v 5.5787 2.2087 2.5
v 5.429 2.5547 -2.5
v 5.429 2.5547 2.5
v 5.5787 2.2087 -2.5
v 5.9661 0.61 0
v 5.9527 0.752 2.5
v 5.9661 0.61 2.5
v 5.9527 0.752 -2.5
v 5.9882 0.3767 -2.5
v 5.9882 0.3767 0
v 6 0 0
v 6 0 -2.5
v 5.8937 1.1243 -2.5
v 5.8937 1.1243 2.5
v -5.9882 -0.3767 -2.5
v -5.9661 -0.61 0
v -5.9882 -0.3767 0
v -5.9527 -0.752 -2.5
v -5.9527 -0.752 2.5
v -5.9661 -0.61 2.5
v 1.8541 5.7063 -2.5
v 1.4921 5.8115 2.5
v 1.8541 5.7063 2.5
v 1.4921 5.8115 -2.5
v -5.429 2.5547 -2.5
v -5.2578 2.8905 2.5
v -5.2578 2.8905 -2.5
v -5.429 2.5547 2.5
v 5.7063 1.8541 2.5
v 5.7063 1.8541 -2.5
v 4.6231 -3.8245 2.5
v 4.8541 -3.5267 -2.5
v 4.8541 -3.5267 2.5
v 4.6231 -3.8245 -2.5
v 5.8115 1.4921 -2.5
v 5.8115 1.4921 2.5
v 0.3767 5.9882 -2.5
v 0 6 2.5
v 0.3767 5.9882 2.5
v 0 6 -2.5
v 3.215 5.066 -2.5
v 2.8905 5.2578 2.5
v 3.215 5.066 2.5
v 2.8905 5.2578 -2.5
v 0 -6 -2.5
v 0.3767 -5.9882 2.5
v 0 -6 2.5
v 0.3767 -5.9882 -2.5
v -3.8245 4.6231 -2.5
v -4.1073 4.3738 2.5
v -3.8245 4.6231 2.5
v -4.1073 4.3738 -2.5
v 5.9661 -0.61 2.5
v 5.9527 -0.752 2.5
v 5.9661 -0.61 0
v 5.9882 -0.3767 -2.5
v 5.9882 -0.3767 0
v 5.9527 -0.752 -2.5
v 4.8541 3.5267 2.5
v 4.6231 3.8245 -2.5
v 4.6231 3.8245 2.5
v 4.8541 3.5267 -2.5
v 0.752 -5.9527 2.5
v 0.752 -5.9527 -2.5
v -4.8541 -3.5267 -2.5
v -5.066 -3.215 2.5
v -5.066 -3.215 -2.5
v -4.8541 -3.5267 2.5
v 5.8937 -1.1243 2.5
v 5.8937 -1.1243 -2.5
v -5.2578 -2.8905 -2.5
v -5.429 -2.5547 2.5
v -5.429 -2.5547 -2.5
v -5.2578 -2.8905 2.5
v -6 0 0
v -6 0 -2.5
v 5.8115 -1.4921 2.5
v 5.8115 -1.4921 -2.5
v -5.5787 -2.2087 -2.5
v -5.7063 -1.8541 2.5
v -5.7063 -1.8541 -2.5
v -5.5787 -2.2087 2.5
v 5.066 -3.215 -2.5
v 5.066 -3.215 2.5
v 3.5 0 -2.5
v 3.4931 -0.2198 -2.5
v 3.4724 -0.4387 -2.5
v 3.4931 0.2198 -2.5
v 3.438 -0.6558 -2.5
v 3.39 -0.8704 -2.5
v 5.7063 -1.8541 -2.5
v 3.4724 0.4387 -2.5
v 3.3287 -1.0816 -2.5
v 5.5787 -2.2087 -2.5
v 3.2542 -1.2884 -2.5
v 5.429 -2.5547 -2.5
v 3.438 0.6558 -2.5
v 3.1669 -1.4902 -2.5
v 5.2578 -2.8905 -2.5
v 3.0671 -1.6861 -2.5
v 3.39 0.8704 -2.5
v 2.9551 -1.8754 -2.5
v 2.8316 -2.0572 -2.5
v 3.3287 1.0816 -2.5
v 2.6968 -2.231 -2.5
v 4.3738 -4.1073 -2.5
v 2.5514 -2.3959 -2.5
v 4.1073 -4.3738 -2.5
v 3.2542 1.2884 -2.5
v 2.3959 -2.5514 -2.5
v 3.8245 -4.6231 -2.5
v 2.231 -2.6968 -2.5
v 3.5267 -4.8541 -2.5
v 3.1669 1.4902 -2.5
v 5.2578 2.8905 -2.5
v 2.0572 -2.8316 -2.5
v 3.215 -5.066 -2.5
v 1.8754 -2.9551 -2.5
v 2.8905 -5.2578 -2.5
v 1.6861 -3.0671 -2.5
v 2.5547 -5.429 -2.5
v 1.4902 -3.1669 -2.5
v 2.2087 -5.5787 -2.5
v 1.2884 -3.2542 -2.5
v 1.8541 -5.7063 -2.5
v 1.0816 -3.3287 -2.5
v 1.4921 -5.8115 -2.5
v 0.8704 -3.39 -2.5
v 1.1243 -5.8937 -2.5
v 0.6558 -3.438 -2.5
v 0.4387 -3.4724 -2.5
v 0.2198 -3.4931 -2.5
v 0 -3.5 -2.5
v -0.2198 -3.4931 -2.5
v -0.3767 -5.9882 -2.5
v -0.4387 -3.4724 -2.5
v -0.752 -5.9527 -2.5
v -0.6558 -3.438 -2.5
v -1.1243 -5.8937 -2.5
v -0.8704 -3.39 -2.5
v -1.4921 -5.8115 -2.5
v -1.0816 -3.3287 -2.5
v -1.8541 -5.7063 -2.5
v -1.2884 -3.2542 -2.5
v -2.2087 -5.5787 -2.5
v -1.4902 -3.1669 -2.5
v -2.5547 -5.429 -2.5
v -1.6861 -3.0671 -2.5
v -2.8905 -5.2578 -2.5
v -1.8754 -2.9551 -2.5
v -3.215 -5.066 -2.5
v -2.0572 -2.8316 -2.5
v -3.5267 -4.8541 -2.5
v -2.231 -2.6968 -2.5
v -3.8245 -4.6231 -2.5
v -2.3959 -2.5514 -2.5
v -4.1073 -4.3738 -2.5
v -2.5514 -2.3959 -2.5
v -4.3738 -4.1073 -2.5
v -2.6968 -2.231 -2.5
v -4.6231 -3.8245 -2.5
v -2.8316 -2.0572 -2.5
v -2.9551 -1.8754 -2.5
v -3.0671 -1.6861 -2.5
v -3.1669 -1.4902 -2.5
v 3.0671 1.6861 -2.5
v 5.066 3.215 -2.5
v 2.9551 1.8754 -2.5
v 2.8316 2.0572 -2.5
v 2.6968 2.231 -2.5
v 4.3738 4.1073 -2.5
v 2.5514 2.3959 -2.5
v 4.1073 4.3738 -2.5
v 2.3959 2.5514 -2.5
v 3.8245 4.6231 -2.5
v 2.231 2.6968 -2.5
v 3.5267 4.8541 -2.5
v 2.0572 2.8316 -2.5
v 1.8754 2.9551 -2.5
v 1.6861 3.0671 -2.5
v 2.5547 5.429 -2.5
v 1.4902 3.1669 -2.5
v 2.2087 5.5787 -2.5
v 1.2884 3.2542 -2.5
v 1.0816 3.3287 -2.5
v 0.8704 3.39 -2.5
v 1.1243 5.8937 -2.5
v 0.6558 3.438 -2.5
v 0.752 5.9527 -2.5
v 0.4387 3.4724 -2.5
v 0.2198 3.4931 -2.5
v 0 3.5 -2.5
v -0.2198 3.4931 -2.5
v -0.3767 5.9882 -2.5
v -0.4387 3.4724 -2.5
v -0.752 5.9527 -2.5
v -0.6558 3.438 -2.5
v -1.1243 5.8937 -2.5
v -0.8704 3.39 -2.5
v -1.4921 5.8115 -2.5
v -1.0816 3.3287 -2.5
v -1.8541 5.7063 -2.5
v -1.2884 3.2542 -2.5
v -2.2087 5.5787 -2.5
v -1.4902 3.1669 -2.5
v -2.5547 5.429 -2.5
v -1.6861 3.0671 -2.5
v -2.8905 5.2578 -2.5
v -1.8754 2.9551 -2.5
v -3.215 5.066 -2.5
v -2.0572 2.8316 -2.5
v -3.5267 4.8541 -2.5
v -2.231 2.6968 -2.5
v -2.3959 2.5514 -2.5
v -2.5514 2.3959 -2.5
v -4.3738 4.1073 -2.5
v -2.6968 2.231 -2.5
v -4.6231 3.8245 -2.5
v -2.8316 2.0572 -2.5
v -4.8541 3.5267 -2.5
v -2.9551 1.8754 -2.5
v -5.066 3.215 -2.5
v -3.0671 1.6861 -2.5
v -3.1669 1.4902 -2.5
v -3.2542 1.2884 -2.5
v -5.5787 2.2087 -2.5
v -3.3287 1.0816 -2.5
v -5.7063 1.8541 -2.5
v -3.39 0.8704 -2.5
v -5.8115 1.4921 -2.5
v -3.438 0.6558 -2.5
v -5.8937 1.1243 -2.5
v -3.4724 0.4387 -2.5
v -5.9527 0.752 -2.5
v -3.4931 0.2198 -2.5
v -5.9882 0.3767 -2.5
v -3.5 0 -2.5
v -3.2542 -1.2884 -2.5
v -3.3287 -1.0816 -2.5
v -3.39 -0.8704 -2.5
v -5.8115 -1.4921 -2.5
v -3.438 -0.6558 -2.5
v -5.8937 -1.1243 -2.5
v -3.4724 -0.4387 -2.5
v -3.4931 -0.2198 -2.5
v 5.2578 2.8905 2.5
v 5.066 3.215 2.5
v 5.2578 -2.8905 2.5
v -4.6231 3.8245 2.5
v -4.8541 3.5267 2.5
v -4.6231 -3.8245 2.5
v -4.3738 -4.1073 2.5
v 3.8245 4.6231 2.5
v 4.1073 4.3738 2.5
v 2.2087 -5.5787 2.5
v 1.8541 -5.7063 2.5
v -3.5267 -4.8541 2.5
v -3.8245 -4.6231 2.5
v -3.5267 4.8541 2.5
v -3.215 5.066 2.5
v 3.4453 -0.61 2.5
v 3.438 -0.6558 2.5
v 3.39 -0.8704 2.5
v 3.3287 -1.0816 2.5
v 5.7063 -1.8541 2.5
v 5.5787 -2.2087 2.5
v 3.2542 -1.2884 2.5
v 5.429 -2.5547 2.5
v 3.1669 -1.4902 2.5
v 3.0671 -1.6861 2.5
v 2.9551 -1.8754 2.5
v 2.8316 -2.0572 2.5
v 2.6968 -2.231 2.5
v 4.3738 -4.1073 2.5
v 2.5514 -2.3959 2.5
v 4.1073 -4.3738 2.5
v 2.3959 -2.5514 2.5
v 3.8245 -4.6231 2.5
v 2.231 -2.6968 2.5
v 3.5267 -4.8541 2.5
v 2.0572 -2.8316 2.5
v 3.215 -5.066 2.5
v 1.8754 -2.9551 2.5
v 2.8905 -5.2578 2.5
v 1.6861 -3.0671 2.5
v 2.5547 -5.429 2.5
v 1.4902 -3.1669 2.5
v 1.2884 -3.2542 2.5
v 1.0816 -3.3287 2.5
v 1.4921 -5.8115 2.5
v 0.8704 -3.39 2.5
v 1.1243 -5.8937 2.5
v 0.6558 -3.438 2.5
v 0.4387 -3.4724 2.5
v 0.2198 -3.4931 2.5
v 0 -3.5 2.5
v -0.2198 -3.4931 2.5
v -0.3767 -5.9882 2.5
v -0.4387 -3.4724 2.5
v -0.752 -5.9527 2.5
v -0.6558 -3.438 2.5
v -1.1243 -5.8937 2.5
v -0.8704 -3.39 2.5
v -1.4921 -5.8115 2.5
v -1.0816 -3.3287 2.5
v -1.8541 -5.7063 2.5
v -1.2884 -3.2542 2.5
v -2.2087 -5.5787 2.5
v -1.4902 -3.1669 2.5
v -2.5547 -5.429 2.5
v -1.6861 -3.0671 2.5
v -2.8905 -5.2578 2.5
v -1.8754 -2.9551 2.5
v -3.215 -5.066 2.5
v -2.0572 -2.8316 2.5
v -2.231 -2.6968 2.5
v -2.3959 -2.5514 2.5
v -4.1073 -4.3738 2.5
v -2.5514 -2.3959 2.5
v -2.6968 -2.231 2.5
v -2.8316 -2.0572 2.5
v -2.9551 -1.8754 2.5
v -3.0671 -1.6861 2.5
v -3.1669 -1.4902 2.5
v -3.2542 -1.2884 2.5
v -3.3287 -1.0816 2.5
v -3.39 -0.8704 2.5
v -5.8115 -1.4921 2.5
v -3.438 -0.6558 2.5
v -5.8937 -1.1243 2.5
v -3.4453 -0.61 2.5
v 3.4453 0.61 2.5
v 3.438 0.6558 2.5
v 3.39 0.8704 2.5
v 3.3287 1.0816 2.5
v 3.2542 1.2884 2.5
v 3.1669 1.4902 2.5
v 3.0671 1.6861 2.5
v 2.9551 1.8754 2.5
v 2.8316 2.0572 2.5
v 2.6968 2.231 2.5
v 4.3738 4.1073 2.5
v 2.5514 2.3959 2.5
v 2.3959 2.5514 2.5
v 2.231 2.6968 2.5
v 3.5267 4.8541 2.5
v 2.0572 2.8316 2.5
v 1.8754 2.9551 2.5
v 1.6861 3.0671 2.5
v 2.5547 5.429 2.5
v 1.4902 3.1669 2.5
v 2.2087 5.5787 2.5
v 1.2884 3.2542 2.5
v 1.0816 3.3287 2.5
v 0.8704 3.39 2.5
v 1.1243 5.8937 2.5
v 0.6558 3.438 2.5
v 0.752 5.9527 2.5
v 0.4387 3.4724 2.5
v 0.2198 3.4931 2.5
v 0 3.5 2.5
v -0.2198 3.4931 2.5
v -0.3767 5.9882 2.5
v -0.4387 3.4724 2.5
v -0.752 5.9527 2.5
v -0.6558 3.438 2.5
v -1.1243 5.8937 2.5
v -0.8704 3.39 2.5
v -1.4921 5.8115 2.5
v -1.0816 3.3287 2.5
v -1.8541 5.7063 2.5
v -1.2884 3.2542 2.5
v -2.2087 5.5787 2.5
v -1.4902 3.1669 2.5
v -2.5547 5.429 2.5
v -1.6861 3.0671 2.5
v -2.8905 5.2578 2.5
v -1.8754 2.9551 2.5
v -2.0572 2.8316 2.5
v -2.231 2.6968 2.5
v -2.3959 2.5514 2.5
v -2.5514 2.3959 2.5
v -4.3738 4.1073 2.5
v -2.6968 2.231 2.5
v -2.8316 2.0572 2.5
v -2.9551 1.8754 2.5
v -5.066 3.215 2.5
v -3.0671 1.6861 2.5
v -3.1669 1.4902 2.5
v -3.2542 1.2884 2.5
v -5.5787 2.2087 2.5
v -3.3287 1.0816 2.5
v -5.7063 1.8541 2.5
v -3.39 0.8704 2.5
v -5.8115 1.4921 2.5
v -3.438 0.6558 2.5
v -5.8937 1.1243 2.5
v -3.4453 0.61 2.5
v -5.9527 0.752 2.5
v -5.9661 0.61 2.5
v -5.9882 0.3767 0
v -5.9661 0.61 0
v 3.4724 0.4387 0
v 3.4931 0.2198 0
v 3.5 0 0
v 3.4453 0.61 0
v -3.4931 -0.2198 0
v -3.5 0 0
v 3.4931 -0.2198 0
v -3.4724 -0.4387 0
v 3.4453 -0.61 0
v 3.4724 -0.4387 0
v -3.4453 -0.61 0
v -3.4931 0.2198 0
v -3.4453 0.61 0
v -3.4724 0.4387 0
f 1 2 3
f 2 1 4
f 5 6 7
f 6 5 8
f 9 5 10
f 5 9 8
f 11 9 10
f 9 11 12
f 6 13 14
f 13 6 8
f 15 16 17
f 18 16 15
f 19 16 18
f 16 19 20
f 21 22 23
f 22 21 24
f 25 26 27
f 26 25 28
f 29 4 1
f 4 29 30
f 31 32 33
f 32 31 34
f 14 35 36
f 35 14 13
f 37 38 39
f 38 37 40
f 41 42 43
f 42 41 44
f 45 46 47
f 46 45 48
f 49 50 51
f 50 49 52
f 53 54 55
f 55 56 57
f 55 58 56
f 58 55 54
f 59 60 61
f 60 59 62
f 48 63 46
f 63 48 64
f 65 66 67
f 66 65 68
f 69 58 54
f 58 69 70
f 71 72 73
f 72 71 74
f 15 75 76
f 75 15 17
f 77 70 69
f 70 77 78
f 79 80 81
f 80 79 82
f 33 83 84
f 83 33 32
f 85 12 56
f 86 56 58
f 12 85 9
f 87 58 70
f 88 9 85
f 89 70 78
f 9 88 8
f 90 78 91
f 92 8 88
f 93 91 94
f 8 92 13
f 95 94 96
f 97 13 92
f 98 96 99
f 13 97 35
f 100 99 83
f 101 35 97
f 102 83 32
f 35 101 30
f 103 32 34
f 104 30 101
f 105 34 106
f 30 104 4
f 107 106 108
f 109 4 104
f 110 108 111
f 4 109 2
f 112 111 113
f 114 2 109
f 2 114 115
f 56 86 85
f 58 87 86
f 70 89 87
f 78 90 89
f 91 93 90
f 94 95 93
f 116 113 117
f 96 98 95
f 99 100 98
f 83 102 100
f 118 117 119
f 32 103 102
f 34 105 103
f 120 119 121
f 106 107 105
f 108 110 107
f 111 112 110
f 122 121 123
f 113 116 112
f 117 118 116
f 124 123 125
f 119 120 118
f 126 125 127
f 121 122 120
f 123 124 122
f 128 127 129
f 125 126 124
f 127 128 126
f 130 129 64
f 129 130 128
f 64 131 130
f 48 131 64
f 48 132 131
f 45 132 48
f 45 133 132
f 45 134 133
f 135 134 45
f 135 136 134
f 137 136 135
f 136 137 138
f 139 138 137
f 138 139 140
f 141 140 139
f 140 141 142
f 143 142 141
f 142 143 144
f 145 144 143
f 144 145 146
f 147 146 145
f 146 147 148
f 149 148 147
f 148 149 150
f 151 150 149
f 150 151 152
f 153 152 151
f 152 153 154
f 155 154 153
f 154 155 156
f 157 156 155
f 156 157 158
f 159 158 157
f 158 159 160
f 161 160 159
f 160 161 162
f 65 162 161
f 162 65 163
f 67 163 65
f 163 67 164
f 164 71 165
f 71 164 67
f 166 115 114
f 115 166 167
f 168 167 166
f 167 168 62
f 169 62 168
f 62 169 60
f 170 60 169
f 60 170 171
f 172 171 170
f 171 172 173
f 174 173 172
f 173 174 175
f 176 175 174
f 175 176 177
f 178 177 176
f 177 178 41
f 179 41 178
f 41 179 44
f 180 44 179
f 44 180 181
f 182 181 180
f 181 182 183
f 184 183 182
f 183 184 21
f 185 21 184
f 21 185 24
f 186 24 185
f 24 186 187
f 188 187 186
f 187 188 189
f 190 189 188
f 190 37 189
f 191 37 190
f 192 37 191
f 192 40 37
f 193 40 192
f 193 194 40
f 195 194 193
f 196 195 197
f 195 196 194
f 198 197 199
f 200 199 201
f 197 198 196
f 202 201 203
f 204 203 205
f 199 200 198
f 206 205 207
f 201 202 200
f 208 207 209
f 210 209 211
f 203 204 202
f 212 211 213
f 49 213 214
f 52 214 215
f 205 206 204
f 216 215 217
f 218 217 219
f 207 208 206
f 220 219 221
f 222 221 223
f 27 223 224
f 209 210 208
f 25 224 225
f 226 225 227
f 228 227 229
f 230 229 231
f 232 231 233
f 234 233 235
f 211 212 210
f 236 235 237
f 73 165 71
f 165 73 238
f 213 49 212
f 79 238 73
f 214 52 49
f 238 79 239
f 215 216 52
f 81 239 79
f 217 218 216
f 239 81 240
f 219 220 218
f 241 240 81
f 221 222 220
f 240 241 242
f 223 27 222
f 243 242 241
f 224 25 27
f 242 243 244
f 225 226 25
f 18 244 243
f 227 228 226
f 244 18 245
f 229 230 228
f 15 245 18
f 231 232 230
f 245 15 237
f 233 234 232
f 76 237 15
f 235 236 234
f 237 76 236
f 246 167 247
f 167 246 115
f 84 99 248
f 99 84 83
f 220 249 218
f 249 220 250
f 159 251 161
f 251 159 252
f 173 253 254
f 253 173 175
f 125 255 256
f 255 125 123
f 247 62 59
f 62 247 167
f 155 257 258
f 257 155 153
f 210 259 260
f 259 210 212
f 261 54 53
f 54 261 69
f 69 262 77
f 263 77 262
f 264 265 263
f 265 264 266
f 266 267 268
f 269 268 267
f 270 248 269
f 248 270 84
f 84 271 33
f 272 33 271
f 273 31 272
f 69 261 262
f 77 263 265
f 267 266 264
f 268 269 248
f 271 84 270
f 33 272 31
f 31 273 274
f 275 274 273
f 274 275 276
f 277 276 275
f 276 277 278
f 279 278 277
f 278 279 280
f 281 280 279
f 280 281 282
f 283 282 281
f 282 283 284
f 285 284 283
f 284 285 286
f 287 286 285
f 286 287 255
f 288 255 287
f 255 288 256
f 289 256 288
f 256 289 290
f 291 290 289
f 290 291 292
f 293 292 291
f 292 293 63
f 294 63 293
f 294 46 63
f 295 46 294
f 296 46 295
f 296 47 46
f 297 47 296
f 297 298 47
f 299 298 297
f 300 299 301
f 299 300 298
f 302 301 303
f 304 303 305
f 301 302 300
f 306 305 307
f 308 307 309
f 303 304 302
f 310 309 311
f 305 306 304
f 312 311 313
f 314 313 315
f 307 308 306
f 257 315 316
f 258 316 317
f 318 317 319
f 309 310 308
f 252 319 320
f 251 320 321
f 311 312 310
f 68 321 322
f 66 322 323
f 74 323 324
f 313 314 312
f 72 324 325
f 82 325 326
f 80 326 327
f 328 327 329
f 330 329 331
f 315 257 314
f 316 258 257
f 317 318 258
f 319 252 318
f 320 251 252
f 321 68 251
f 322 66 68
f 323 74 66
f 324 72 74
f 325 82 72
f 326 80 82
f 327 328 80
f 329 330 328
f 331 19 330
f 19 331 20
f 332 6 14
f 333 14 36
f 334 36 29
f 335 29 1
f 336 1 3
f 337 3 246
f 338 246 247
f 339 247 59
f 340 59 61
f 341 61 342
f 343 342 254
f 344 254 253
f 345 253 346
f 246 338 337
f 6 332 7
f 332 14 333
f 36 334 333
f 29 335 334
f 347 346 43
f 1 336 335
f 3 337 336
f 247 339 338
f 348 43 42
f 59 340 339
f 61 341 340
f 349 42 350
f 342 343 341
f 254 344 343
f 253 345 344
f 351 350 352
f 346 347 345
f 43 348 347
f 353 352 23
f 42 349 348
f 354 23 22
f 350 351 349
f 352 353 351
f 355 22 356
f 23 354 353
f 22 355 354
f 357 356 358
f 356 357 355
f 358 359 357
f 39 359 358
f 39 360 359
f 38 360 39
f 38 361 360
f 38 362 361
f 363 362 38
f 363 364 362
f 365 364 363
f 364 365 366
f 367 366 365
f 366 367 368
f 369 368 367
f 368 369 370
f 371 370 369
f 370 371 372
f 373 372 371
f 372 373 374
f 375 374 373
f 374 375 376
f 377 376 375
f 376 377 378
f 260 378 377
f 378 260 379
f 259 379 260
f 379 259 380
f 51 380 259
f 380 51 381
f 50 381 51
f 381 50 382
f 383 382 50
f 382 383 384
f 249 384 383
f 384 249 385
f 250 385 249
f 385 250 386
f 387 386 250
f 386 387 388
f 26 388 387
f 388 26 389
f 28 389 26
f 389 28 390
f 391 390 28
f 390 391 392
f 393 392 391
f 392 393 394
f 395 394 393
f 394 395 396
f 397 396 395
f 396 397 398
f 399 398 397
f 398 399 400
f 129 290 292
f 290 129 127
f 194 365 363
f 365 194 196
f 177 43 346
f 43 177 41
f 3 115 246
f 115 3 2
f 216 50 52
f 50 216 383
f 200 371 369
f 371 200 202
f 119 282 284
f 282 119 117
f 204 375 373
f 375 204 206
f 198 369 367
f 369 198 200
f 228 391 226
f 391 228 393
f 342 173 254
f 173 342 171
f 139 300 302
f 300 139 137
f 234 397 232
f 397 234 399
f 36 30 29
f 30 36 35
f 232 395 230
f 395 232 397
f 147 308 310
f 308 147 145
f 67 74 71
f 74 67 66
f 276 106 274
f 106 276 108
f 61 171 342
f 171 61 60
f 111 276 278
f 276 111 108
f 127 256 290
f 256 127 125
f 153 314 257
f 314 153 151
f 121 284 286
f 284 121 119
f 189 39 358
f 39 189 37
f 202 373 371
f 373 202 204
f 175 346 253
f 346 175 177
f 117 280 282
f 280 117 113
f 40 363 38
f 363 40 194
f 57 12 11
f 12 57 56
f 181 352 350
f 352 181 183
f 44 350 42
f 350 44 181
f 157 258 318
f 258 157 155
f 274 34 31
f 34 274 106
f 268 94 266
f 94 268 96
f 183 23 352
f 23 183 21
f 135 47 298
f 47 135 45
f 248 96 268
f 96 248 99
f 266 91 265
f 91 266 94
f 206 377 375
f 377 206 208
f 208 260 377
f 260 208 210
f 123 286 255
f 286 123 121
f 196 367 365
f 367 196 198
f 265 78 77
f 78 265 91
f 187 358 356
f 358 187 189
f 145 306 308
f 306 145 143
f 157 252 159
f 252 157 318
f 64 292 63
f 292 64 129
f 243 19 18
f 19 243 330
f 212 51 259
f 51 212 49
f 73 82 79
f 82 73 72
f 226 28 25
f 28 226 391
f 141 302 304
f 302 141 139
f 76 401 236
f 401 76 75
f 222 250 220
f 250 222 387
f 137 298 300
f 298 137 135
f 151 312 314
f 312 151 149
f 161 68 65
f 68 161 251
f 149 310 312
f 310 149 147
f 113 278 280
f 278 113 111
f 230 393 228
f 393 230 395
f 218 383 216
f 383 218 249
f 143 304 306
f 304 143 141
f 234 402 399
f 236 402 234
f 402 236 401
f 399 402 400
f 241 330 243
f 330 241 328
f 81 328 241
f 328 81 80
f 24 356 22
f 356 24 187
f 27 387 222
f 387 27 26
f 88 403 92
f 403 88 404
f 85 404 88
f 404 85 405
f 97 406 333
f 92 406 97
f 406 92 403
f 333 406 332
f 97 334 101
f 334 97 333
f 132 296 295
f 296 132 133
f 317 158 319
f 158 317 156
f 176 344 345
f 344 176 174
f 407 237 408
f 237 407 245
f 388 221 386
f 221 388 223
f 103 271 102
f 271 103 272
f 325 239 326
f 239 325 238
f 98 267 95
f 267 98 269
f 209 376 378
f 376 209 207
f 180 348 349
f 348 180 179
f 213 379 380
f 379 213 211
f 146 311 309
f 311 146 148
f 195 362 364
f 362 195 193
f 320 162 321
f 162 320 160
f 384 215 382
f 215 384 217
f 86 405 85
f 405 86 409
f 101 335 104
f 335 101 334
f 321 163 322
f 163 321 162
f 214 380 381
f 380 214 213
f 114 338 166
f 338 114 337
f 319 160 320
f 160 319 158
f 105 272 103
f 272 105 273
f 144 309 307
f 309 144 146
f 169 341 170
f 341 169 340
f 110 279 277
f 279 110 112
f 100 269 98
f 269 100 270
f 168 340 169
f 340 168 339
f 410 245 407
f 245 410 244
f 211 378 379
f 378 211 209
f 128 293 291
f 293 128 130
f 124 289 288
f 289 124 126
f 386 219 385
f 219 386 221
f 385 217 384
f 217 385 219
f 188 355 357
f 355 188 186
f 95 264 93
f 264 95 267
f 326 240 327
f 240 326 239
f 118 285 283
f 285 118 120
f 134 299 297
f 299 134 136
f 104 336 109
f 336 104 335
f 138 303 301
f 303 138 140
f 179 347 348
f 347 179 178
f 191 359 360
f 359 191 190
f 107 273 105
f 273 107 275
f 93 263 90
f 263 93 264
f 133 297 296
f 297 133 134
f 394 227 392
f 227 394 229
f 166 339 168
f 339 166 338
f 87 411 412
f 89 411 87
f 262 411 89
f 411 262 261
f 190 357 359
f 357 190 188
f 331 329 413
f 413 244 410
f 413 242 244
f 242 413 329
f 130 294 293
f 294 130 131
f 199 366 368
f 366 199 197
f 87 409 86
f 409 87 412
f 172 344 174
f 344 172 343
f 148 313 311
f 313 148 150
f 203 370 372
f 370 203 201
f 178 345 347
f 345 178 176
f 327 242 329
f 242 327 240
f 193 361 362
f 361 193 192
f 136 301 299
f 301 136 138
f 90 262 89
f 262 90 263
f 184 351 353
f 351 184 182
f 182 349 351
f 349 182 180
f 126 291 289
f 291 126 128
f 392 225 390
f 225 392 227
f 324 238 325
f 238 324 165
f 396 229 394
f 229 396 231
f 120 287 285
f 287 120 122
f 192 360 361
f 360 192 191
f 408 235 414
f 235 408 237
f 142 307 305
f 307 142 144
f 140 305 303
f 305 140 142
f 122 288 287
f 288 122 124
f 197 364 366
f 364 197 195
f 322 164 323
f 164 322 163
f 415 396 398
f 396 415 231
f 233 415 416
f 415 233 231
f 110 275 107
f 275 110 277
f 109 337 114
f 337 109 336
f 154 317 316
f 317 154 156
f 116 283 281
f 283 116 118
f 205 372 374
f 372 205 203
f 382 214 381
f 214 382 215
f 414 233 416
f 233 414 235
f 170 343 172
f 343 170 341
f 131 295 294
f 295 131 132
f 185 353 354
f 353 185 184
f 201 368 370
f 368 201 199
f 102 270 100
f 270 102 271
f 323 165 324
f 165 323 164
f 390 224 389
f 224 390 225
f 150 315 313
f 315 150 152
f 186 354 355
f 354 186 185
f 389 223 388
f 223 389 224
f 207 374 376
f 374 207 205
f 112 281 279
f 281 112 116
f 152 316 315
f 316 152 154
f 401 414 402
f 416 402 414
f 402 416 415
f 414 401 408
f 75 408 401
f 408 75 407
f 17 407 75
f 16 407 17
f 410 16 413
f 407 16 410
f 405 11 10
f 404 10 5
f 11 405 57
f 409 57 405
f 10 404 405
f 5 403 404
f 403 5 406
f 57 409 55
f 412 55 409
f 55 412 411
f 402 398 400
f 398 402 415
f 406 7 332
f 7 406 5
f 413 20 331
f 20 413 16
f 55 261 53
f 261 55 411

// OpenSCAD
$fn = 100;
cylinder_in = 7;
cylinder_out = 12;
cylinder_height = 5;
mirror_thickness = 1.22;


difference(){
    cylinder( cylinder_height, d=cylinder_out, center=true);
    cylinder( cylinder_height+2, d=cylinder_in, center=true);
    translate([0,0,7])cube([14,mirror_thickness,14],center = true);
}
